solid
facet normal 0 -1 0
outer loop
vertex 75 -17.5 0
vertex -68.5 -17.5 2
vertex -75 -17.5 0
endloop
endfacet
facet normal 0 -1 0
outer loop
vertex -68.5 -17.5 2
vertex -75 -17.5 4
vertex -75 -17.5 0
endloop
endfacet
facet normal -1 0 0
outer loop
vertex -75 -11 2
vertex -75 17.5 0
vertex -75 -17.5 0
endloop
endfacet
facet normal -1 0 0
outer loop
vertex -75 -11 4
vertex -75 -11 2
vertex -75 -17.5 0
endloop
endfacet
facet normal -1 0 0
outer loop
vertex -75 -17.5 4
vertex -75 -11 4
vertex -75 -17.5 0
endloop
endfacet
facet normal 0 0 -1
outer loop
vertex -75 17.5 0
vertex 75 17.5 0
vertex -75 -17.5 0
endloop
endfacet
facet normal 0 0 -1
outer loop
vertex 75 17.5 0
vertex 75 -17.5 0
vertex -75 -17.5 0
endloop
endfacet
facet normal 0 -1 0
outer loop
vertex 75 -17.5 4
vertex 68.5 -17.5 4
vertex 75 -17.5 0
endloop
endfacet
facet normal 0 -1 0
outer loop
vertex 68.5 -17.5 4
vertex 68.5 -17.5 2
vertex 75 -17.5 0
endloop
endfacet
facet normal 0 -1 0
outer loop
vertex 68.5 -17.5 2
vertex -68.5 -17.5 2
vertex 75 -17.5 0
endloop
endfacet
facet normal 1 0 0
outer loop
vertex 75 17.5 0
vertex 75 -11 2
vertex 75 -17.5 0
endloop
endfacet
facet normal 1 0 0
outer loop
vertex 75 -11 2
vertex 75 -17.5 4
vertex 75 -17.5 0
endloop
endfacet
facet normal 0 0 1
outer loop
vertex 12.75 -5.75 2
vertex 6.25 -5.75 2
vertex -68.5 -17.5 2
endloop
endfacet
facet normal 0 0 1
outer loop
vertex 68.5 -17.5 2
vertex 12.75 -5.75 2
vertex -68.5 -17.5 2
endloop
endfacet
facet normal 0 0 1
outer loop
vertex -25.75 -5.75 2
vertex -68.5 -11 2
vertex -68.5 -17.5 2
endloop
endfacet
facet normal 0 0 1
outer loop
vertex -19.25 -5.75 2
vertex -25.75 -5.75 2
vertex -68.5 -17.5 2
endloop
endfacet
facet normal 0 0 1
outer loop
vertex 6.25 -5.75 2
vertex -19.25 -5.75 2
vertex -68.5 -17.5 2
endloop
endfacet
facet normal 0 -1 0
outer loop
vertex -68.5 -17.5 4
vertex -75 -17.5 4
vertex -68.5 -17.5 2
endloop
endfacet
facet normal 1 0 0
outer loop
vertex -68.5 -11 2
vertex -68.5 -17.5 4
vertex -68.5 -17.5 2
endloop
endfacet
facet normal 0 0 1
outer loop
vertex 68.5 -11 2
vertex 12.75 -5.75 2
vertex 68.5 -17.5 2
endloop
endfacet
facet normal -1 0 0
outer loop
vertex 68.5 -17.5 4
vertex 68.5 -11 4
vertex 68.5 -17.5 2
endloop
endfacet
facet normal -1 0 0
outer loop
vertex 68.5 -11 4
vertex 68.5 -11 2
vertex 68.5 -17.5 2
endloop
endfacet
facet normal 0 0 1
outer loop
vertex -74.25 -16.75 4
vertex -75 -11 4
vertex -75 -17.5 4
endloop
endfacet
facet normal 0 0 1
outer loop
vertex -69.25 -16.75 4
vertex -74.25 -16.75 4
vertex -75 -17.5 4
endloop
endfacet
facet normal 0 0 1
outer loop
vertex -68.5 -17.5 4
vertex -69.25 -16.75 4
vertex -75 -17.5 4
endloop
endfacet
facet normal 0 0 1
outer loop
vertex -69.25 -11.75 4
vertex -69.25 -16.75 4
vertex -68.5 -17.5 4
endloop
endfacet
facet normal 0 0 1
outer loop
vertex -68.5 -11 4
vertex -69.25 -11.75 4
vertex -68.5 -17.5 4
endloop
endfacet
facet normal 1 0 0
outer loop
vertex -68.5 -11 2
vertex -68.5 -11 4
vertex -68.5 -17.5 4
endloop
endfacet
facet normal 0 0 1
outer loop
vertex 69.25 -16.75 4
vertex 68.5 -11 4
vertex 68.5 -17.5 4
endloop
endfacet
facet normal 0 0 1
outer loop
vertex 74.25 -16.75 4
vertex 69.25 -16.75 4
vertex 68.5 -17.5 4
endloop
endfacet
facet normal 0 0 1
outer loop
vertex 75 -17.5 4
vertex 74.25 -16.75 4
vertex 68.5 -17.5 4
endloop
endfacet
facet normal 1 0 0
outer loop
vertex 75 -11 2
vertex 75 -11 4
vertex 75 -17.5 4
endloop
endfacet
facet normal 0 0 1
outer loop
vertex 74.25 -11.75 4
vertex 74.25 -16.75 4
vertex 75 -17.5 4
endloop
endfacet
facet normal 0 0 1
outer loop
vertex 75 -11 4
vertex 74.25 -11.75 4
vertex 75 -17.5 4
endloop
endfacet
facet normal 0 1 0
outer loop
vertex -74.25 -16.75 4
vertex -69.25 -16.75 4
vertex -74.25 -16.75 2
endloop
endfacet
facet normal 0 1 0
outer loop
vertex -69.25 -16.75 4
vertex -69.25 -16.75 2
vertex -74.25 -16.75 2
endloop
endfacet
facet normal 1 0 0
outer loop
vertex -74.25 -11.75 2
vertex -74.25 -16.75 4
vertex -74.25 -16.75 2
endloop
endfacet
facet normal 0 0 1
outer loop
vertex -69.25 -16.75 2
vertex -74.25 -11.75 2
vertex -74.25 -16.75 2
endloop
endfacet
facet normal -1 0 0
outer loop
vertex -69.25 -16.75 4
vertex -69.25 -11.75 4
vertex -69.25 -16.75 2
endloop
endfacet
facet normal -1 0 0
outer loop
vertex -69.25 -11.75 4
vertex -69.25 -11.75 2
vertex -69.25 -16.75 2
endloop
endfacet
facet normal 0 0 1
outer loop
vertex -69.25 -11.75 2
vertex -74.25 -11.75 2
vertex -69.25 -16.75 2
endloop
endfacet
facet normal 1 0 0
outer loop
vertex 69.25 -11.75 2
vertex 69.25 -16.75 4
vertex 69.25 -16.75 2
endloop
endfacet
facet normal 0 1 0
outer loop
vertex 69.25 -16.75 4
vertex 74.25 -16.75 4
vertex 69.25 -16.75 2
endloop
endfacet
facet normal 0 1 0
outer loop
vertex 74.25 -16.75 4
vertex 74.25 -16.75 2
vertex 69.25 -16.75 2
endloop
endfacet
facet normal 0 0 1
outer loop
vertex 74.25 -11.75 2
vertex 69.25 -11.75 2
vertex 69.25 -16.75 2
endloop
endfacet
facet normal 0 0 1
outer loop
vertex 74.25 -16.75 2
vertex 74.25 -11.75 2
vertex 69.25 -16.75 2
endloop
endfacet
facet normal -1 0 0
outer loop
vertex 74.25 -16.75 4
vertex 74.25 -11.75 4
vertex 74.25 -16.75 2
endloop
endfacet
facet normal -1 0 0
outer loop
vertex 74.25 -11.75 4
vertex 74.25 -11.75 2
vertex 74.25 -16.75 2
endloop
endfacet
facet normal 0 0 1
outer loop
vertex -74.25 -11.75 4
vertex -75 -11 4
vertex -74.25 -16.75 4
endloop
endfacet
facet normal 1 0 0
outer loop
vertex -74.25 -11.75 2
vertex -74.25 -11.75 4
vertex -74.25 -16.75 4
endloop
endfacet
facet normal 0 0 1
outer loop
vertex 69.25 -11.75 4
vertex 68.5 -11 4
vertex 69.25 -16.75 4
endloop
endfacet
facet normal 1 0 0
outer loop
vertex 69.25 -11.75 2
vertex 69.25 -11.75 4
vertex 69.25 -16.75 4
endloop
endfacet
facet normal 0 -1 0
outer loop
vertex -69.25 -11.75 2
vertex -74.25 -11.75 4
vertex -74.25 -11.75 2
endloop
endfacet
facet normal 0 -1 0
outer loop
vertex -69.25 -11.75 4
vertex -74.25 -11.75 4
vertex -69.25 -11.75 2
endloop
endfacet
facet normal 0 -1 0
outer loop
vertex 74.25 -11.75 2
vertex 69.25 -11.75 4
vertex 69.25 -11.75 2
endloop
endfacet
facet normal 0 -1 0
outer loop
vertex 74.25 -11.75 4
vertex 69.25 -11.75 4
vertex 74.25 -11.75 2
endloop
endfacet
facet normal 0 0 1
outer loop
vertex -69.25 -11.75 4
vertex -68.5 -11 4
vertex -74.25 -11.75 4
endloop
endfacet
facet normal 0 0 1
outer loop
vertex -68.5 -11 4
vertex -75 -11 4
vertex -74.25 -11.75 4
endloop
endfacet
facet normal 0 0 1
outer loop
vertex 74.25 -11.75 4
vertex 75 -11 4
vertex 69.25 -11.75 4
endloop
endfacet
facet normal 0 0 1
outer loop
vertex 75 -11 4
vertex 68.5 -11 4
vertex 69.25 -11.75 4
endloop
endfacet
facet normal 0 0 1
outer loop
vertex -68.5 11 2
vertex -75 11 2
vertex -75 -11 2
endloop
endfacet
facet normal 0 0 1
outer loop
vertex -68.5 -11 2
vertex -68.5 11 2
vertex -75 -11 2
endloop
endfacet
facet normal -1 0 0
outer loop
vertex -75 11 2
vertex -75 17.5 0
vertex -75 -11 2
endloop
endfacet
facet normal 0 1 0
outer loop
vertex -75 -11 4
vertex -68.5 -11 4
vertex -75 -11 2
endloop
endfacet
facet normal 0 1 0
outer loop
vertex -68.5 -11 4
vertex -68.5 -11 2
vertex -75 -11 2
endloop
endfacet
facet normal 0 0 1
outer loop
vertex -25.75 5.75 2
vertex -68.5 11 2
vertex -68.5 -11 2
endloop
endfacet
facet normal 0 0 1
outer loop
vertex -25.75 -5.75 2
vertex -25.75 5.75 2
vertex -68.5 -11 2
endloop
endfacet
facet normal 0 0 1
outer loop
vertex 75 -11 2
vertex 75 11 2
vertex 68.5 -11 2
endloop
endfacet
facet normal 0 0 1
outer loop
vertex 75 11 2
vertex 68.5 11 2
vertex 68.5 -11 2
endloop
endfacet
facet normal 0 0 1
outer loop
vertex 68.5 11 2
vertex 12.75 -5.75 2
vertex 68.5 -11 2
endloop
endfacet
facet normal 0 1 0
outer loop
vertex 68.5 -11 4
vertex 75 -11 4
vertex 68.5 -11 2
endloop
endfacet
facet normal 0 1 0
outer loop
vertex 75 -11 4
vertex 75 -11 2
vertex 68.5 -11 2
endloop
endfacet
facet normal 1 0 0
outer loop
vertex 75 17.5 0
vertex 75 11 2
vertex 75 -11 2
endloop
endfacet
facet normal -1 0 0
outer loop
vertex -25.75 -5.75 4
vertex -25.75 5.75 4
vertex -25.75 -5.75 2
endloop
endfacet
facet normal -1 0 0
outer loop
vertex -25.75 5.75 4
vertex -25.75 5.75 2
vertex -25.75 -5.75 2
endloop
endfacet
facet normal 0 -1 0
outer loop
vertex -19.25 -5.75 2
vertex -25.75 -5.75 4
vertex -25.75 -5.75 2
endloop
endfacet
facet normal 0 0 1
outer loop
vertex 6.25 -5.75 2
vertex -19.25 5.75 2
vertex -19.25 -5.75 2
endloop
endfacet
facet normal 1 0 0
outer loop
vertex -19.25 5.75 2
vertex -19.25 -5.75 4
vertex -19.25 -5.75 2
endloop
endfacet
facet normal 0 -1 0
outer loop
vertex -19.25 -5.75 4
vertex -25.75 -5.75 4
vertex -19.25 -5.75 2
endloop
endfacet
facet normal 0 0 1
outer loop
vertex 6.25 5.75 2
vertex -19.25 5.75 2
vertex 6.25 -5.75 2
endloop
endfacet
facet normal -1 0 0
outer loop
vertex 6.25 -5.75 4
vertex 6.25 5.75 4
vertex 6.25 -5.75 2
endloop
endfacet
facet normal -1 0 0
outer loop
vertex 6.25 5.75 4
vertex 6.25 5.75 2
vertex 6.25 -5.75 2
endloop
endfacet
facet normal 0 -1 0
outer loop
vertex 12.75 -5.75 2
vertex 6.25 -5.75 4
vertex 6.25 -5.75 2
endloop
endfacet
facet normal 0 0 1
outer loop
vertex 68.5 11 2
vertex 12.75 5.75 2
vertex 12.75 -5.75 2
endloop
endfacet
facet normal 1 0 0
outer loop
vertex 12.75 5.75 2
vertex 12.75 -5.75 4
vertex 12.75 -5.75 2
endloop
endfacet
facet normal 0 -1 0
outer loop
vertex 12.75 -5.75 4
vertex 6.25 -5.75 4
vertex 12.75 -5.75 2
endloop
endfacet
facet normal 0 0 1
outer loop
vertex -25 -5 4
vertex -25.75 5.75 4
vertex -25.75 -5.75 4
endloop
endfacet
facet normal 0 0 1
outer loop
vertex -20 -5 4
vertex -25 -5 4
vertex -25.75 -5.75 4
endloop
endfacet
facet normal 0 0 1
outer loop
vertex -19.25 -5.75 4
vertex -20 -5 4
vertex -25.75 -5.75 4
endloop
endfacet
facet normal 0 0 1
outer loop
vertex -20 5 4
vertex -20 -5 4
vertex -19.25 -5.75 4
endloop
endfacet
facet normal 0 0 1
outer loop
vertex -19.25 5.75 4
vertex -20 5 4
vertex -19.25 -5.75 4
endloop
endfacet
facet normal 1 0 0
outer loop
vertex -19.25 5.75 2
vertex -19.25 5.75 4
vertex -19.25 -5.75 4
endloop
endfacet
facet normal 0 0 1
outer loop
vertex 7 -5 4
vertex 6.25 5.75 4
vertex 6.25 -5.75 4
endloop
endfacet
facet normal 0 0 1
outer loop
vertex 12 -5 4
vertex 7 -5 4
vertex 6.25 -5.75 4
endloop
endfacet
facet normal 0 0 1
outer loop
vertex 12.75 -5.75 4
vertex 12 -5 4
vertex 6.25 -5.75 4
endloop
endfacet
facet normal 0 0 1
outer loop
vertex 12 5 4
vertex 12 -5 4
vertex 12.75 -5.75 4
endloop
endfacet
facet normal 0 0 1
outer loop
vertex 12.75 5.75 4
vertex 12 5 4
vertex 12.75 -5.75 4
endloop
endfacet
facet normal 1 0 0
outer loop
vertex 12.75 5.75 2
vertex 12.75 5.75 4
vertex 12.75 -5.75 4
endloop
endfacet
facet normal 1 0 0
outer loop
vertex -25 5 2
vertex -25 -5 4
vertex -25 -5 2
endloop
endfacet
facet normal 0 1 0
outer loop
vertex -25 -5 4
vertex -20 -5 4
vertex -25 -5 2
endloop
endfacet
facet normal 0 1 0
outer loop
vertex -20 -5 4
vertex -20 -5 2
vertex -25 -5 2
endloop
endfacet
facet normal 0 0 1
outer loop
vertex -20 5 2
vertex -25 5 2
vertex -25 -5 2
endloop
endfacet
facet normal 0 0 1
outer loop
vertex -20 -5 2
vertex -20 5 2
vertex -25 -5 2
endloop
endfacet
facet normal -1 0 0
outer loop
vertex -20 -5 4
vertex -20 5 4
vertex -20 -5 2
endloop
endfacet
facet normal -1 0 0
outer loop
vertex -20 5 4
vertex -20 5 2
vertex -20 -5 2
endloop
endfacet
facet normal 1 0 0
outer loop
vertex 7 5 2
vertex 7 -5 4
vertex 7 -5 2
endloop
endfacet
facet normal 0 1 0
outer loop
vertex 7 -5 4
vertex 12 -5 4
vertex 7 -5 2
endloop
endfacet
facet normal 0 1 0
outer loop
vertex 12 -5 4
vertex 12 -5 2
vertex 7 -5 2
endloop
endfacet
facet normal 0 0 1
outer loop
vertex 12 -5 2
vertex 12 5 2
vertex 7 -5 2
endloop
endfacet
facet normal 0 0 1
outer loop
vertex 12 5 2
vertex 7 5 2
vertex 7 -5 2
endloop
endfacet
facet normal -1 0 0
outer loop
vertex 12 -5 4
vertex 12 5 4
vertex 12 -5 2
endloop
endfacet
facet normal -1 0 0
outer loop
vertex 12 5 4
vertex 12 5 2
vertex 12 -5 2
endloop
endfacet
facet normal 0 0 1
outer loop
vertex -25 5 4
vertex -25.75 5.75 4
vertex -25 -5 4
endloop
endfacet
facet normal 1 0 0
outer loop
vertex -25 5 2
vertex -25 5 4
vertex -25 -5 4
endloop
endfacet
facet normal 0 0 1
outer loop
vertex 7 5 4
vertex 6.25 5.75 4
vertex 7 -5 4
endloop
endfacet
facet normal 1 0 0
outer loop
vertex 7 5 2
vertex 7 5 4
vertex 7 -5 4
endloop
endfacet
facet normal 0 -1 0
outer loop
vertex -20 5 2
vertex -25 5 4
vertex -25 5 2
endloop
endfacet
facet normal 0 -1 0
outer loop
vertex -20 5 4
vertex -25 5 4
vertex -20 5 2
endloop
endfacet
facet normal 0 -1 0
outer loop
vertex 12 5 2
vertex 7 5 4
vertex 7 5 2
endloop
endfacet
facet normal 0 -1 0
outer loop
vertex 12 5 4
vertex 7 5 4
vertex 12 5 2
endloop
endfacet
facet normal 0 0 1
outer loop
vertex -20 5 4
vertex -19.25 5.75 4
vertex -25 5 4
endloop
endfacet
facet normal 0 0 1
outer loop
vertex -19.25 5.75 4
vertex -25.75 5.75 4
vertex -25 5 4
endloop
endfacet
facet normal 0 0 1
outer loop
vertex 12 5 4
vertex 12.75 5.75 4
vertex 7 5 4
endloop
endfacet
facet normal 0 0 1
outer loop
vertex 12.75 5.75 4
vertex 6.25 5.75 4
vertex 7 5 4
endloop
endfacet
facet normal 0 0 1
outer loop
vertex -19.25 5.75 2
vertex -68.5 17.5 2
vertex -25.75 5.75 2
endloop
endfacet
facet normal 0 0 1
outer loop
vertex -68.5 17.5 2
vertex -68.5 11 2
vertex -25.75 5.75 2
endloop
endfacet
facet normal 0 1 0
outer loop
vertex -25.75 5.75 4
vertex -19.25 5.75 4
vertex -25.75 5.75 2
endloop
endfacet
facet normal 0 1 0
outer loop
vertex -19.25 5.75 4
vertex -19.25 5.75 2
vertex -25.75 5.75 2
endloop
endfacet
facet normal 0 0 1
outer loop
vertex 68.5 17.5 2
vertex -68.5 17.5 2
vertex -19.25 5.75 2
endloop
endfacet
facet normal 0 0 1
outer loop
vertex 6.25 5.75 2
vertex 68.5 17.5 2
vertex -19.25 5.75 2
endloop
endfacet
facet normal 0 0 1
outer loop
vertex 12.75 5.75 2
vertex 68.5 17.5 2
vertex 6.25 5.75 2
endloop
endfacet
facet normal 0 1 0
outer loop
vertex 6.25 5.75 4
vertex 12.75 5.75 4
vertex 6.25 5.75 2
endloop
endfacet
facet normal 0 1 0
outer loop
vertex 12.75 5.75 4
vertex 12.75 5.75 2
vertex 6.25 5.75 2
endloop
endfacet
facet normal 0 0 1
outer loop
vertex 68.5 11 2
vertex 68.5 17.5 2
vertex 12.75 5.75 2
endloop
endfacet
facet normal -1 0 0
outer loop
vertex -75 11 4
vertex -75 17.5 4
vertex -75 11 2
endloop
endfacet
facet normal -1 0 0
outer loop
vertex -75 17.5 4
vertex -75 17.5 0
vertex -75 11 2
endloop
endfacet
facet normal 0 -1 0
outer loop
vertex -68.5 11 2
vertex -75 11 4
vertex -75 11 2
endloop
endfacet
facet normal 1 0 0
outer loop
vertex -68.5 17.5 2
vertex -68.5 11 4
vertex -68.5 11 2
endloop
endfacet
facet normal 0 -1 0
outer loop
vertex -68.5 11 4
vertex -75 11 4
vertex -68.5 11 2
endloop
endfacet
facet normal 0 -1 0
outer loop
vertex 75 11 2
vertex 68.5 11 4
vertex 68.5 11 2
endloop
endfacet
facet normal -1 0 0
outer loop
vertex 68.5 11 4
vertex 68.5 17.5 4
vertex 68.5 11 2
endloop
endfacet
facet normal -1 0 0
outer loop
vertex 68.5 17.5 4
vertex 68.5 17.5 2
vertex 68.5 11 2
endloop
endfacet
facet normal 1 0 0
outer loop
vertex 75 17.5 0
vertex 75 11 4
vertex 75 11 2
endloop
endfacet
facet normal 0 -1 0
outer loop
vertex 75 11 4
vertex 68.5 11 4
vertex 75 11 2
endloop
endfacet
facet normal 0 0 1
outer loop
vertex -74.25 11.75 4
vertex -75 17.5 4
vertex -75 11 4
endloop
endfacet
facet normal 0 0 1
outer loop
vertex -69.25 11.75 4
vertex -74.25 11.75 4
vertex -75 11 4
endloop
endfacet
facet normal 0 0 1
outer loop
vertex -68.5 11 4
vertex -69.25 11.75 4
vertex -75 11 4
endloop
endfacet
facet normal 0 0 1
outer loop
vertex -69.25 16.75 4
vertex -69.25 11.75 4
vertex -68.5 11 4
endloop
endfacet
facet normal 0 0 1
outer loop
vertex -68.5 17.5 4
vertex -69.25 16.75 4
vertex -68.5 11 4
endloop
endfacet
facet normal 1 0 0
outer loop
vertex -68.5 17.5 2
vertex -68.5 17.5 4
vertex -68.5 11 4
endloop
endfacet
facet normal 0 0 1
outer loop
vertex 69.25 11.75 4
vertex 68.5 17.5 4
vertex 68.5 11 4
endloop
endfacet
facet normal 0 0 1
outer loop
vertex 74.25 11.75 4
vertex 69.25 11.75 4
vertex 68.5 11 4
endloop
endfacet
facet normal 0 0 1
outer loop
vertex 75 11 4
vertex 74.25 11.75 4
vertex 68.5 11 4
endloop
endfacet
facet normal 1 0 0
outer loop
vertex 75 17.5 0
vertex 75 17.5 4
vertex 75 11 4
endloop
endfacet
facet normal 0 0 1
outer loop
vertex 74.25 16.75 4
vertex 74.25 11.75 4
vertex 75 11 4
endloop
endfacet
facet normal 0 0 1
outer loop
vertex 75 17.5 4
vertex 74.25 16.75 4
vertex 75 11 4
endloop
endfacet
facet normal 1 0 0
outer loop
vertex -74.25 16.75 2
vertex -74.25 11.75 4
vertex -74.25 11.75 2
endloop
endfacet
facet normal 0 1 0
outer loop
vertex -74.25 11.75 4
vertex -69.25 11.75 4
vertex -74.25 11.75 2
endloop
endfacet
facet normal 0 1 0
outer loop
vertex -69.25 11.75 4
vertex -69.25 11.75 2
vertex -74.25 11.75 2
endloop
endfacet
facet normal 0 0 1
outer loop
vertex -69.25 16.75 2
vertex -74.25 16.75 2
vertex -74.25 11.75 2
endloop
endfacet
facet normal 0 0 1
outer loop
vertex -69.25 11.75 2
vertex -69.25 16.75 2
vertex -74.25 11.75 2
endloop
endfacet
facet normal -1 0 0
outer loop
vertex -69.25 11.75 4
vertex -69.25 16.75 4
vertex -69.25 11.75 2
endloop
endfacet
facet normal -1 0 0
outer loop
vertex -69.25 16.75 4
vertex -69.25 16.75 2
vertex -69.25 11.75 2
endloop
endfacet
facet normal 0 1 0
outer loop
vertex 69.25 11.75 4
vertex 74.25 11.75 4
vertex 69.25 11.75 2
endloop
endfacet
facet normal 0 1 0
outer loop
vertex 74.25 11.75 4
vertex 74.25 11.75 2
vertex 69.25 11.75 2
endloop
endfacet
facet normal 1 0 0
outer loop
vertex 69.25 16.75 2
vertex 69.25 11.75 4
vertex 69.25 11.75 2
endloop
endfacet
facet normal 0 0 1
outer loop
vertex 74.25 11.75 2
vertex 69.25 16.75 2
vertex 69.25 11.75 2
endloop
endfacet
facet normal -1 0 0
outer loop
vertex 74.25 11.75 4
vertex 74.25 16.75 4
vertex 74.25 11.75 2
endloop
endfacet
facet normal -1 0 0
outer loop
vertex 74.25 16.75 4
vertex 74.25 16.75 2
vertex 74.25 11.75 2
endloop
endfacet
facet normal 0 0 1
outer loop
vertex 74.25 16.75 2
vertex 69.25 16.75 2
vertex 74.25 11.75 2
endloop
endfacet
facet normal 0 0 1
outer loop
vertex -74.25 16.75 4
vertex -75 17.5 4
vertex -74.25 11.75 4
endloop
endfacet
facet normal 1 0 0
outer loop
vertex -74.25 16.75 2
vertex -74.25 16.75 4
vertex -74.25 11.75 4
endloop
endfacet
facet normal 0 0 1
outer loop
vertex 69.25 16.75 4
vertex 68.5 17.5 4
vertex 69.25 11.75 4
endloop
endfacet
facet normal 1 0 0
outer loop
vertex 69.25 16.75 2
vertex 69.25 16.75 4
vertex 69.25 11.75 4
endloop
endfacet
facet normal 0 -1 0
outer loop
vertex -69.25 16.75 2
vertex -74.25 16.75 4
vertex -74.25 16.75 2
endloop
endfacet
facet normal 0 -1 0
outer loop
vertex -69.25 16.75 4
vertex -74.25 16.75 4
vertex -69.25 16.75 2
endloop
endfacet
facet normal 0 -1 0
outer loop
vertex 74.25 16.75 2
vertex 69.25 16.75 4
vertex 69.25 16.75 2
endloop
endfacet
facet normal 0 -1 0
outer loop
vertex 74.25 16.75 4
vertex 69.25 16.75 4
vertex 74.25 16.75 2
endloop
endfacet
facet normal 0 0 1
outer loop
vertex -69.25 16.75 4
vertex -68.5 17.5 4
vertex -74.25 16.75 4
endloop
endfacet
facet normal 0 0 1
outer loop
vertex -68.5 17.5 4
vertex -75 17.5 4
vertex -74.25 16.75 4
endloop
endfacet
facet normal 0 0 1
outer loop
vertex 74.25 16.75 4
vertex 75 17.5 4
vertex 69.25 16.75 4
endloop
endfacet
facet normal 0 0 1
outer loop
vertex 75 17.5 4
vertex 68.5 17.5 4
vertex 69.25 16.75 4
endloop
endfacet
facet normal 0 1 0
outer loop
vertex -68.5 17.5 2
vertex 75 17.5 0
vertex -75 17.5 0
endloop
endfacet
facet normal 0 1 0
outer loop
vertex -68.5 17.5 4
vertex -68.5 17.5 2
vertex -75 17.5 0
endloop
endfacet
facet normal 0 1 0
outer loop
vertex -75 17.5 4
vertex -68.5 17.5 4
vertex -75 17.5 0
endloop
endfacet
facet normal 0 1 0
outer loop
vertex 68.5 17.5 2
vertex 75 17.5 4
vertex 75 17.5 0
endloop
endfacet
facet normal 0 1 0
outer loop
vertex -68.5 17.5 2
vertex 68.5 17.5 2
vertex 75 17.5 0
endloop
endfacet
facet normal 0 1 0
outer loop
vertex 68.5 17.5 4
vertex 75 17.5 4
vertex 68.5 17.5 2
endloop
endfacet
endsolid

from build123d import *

# Parameters (mm, degrees)
SKICA1_W                = 150
SKICA1_H                = 35
P_IDAT_VYSUNUT_M2_DEPTH = 2
SKICA2_W                = 6.5
SKICA2_H                = 11.5
SKICA2_W_2              = 5
SKICA2_H_2              = 10
P_IDAT_VYSUNUT_M3_DEPTH = 2
SKICA3_W                = 6.5
SKICA3_H                = 6.5
SKICA3_W_2              = 5
SKICA3_H_2              = 5
P_IDAT_VYSUNUT_M4_DEPTH = 2


with BuildPart() as part:
    # Skica1 → Přidat vysunutím2 (new body)
    with BuildSketch(Plane.XY):
        Rectangle(SKICA1_W, SKICA1_H)
    extrude(amount=P_IDAT_VYSUNUT_M2_DEPTH)

    # Skica2 → Přidat vysunutím3 (add)
    with BuildSketch(Plane.XY.offset(2)):
        with Locations((-22.5, 0)):
            Rectangle(SKICA2_W, SKICA2_H)
        with Locations((-22.5, 0)):
            Rectangle(SKICA2_W_2, SKICA2_H_2, mode=Mode.SUBTRACT)
        with Locations((9.5, 0)):
            Rectangle(SKICA2_W, SKICA2_H)
        with Locations((9.5, 0)):
            Rectangle(SKICA2_W_2, SKICA2_H_2, mode=Mode.SUBTRACT)
    extrude(amount=P_IDAT_VYSUNUT_M3_DEPTH)

    # Skica3 → Přidat vysunutím4 (add)
    with BuildSketch(Plane.XY.offset(2)):
        with Locations((-71.75, 14.25)):
            Rectangle(SKICA3_W, SKICA3_H)
        with Locations((-71.75, 14.25)):
            Rectangle(SKICA3_W_2, SKICA3_H_2, mode=Mode.SUBTRACT)
        with Locations((71.75, 14.25)):
            Rectangle(SKICA3_W, SKICA3_H)
        with Locations((71.75, 14.25)):
            Rectangle(SKICA3_W_2, SKICA3_H_2, mode=Mode.SUBTRACT)
        with Locations((-71.75, -14.25)):
            Rectangle(SKICA3_W, SKICA3_H)
        with Locations((-71.75, -14.25)):
            Rectangle(SKICA3_W_2, SKICA3_H_2, mode=Mode.SUBTRACT)
        with Locations((71.75, -14.25)):
            Rectangle(SKICA3_W, SKICA3_H)
        with Locations((71.75, -14.25)):
            Rectangle(SKICA3_W_2, SKICA3_H_2, mode=Mode.SUBTRACT)
    extrude(amount=P_IDAT_VYSUNUT_M4_DEPTH)


solid = part.part
